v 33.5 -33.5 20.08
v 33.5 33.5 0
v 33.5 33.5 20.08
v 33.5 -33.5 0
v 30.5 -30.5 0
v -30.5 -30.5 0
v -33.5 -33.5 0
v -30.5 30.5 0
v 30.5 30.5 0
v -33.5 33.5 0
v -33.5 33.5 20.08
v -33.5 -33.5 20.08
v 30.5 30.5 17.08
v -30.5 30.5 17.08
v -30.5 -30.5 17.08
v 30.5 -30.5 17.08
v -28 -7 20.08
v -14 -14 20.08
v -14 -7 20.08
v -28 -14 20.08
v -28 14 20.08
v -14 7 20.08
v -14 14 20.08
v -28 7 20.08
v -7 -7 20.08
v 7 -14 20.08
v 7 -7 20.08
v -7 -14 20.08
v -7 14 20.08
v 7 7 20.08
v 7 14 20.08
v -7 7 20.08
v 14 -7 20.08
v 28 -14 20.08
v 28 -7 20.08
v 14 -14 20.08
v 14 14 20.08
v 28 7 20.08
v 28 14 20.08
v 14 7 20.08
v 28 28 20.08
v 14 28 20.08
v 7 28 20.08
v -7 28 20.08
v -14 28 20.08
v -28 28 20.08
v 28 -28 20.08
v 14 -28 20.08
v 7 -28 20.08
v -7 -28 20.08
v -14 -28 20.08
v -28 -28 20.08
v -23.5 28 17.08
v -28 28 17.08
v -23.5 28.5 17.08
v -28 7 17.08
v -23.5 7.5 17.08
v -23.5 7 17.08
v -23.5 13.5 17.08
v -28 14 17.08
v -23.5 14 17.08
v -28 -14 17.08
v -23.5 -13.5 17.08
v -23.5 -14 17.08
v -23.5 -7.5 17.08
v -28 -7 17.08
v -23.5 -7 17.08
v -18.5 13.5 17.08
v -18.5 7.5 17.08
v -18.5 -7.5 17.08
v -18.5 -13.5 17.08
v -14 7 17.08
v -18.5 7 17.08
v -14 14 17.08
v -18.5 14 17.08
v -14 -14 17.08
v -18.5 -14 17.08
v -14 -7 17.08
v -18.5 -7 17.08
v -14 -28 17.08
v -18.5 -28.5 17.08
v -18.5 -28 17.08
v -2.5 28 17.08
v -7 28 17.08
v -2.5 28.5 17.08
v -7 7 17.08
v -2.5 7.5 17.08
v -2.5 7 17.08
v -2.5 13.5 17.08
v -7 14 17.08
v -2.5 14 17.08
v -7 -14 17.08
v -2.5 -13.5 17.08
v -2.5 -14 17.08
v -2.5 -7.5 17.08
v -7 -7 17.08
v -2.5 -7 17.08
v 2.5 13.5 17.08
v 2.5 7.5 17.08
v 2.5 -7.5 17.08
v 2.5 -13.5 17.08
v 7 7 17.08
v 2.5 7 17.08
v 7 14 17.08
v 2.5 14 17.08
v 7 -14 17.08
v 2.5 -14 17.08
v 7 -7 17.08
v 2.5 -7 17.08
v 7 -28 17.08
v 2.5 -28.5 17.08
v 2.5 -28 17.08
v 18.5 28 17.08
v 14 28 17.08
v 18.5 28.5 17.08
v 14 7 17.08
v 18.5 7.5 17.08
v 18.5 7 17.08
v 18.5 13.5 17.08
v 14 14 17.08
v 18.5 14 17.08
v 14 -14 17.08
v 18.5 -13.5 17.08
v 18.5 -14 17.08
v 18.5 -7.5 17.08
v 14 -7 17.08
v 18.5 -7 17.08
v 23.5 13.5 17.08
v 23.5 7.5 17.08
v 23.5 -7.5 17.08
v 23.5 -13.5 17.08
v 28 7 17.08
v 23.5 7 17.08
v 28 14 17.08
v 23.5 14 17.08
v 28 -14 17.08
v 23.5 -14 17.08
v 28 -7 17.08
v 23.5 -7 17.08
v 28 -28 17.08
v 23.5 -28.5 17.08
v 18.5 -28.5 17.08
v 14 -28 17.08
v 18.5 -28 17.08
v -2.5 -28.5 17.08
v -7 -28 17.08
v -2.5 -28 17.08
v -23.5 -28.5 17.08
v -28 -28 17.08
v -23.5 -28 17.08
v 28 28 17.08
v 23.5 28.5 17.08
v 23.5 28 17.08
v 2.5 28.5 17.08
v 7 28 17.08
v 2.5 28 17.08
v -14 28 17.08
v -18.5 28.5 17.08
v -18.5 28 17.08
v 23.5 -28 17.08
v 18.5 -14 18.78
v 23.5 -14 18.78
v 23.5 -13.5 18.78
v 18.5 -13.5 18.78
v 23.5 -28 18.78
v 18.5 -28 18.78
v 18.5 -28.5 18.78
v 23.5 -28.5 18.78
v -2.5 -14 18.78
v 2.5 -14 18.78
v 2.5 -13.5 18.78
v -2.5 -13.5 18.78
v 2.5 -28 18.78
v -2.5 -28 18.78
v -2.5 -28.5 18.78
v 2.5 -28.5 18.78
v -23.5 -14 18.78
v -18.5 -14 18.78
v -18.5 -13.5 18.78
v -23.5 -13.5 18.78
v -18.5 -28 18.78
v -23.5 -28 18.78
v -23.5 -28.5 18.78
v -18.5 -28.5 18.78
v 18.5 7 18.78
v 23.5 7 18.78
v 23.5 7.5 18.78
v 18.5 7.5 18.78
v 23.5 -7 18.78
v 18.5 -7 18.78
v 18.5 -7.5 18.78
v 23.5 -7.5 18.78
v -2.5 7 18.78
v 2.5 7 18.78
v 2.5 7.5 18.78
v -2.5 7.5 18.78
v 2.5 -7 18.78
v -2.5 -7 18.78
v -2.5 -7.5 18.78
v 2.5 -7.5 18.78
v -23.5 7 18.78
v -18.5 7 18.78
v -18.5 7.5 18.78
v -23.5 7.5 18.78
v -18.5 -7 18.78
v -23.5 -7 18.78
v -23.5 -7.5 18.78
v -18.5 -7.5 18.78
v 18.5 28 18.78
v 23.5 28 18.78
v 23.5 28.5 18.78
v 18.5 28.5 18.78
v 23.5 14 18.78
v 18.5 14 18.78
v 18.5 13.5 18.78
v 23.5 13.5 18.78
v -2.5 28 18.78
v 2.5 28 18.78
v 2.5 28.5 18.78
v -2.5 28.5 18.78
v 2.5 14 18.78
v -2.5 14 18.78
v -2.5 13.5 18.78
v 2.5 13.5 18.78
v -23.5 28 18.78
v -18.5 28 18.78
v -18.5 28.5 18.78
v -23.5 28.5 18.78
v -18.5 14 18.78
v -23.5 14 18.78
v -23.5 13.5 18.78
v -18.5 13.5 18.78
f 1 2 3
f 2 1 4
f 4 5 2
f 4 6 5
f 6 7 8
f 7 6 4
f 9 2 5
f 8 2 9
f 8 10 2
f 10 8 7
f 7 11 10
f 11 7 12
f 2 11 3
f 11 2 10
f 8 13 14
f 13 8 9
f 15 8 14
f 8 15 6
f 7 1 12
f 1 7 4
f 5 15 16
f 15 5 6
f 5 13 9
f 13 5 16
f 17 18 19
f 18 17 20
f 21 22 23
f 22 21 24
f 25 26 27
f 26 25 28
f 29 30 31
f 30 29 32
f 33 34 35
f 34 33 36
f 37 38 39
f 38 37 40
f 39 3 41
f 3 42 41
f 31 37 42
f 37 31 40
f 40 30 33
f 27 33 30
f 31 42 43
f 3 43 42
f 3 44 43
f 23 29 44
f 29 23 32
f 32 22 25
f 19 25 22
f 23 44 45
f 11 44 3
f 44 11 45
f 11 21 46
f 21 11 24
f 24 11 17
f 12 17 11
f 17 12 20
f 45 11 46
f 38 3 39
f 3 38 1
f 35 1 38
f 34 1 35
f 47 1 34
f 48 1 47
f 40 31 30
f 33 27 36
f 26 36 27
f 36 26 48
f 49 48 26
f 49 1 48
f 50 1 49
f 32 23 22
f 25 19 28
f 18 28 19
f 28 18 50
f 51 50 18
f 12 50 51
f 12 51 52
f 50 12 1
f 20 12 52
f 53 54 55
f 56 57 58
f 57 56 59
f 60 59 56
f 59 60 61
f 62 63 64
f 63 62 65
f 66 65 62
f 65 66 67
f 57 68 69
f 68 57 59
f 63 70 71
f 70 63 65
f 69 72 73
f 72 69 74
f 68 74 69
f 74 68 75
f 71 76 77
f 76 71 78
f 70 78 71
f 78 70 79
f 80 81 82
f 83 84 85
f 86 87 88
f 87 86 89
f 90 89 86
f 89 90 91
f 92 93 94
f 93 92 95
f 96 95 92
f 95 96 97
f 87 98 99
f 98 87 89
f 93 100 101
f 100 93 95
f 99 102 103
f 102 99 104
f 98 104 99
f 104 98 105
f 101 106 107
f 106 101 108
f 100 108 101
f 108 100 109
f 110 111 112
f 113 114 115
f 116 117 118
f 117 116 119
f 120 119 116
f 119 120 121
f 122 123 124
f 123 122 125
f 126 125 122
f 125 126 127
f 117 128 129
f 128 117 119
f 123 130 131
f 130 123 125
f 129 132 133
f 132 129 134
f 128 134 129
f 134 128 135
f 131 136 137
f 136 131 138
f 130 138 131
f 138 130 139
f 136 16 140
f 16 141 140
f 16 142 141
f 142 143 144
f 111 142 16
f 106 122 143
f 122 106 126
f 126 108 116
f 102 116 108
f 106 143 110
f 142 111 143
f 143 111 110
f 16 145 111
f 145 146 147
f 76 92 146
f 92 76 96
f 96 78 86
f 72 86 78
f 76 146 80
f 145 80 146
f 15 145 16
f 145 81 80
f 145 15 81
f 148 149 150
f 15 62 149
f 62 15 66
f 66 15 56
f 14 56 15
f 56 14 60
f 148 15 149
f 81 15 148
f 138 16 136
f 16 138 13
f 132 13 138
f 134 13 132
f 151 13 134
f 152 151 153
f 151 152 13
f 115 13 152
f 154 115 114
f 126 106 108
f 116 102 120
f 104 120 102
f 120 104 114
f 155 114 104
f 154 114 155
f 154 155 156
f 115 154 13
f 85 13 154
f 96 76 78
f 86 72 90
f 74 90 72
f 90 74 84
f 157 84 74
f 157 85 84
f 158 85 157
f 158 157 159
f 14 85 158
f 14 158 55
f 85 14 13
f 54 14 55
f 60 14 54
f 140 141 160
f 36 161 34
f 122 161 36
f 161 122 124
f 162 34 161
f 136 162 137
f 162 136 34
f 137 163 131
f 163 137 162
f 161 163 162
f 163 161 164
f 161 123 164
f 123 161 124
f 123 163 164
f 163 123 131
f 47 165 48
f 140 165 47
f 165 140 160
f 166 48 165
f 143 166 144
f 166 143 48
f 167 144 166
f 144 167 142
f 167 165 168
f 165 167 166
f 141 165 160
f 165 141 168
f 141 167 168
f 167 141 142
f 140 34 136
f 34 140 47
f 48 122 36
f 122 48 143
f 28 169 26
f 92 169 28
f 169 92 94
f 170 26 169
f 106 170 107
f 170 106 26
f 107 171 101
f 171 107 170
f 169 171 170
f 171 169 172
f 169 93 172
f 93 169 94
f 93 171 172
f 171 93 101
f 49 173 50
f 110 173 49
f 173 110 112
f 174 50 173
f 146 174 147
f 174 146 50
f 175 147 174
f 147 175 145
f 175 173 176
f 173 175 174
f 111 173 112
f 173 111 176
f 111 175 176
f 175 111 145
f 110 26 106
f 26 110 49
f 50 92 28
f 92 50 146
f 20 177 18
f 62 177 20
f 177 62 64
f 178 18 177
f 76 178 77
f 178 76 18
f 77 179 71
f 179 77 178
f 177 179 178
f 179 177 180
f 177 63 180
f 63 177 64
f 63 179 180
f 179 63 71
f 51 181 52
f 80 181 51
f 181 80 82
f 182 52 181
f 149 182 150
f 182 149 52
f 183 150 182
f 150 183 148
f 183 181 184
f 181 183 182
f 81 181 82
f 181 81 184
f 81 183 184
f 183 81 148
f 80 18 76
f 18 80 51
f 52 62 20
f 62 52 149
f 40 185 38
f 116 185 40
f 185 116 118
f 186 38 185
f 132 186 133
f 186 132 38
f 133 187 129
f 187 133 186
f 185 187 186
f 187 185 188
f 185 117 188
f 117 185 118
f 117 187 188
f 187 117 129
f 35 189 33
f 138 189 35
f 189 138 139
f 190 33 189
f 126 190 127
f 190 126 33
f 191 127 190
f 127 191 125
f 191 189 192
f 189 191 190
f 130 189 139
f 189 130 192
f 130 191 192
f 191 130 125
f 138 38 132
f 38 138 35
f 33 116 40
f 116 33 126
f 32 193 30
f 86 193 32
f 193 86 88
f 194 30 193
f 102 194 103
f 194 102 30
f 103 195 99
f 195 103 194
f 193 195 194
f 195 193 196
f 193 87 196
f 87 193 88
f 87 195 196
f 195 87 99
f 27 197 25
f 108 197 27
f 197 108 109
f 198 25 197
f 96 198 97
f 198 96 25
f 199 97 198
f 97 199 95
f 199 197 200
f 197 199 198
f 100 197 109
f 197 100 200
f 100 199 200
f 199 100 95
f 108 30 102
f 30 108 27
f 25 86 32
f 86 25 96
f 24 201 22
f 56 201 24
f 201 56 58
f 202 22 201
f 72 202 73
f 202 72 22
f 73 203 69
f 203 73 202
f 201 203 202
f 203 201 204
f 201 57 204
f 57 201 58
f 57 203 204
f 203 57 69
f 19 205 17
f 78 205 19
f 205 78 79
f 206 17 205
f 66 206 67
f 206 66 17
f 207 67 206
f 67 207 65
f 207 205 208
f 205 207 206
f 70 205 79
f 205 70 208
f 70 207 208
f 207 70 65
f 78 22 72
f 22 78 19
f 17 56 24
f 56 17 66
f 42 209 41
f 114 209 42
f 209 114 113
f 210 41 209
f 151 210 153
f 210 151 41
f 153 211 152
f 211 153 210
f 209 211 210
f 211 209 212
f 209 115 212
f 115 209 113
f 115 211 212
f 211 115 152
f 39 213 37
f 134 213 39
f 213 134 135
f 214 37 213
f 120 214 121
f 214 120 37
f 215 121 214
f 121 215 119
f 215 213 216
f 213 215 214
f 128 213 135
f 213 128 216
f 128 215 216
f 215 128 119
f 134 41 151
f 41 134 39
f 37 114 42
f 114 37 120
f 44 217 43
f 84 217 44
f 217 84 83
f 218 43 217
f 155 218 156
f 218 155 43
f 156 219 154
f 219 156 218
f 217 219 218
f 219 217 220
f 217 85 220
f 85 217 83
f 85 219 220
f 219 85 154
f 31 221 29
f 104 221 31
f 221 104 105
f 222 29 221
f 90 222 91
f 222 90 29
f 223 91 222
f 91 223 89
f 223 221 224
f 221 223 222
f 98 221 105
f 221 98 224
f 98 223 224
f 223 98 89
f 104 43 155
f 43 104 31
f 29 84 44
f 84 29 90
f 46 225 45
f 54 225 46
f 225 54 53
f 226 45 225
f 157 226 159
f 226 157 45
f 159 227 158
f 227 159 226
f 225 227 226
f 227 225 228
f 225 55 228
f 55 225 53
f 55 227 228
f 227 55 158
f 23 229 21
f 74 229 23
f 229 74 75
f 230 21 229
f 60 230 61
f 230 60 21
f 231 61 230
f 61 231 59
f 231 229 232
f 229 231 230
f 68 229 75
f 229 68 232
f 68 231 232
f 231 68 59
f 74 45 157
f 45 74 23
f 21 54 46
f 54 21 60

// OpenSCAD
// Generated by SolidPython 1.0.4 on 2020-12-13 17:19:34


union() {
	translate(v = [0, 0, 10.0400000000]) {
		union() {
			translate(v = [0, 32.0000000000, 0]) {
				cube(center = true, size = [67.0000000000, 3, 20.0800000000]);
			}
			translate(v = [-32.0000000000, 0, 0]) {
				cube(center = true, size = [3, 67.0000000000, 20.0800000000]);
			}
			rotate(a = 180) {
				translate(v = [0, 32.0000000000, 0]) {
					cube(center = true, size = [67.0000000000, 3, 20.0800000000]);
				}
			}
			rotate(a = 180) {
				translate(v = [-32.0000000000, 0, 0]) {
					cube(center = true, size = [3, 67.0000000000, 20.0800000000]);
				}
			}
		}
	}
	translate(v = [0, 0, 17.0800000000]) {
		translate(v = [21.0000000000, 0, 0]) {
			translate(v = [0, -21.0000000000, 0]) {
				translate(v = [-0.0000000000, 0, 0]) {
					translate(v = [0, 0.0000000000, 0]) {
						union() {
							translate(v = [0, 7.7500000000, 0]) {
								translate(v = [0, 0, 1.5000000000]) {
									difference() {
										cube(center = true, size = [17.0000000000, 1.5000000000, 3]);
										translate(v = [0, 0, -1.3000000000]) {
											translate(v = [0, -0.7500000000, 0]) {
												cube(center = true, size = [5, 1.0000000000, 3]);
											}
										}
									}
								}
							}
							translate(v = [-7.7500000000, 0, 0]) {
								translate(v = [0, 0, 1.5000000000]) {
									cube(center = true, size = [1.5000000000, 17.0000000000, 3]);
								}
							}
							mirror(v = [0, 1, 0]) {
								mirror(v = [1, 0, 0]) {
									union() {
										translate(v = [0, 7.7500000000, 0]) {
											translate(v = [0, 0, 1.5000000000]) {
												difference() {
													cube(center = true, size = [17.0000000000, 1.5000000000, 3]);
													translate(v = [0, 0, -1.3000000000]) {
														translate(v = [0, -0.7500000000, 0]) {
															cube(center = true, size = [5, 1.0000000000, 3]);
														}
													}
												}
											}
										}
										translate(v = [-7.7500000000, 0, 0]) {
											translate(v = [0, 0, 1.5000000000]) {
												cube(center = true, size = [1.5000000000, 17.0000000000, 3]);
											}
										}
									}
								}
							}
							translate(v = [0, 0, 1.5000000000]) {
								translate(v = [0, 10.5000000000, 0]) {
									cube(center = true, size = [25.0000000000, 4, 3]);
								}
							}
							rotate(a = 90) {
								translate(v = [0, 0, 1.5000000000]) {
									translate(v = [0, 10.5000000000, 0]) {
										cube(center = true, size = [25.0000000000, 4, 3]);
									}
								}
							}
							rotate(a = 180) {
								translate(v = [0, 0, 1.5000000000]) {
									translate(v = [0, 10.5000000000, 0]) {
										cube(center = true, size = [25.0000000000, 4, 3]);
									}
								}
							}
							rotate(a = 270) {
								translate(v = [0, 0, 1.5000000000]) {
									translate(v = [0, 10.5000000000, 0]) {
										cube(center = true, size = [25.0000000000, 4, 3]);
									}
								}
							}
						}
					}
				}
				translate(v = [-21.0000000000, 0, 0]) {
					translate(v = [0, 0.0000000000, 0]) {
						union() {
							translate(v = [0, 7.7500000000, 0]) {
								translate(v = [0, 0, 1.5000000000]) {
									difference() {
										cube(center = true, size = [17.0000000000, 1.5000000000, 3]);
										translate(v = [0, 0, -1.3000000000]) {
											translate(v = [0, -0.7500000000, 0]) {
												cube(center = true, size = [5, 1.0000000000, 3]);
											}
										}
									}
								}
							}
							translate(v = [-7.7500000000, 0, 0]) {
								translate(v = [0, 0, 1.5000000000]) {
									cube(center = true, size = [1.5000000000, 17.0000000000, 3]);
								}
							}
							mirror(v = [0, 1, 0]) {
								mirror(v = [1, 0, 0]) {
									union() {
										translate(v = [0, 7.7500000000, 0]) {
											translate(v = [0, 0, 1.5000000000]) {
												difference() {
													cube(center = true, size = [17.0000000000, 1.5000000000, 3]);
													translate(v = [0, 0, -1.3000000000]) {
														translate(v = [0, -0.7500000000, 0]) {
															cube(center = true, size = [5, 1.0000000000, 3]);
														}
													}
												}
											}
										}
										translate(v = [-7.7500000000, 0, 0]) {
											translate(v = [0, 0, 1.5000000000]) {
												cube(center = true, size = [1.5000000000, 17.0000000000, 3]);
											}
										}
									}
								}
							}
							translate(v = [0, 0, 1.5000000000]) {
								translate(v = [0, 10.5000000000, 0]) {
									cube(center = true, size = [25.0000000000, 4, 3]);
								}
							}
							rotate(a = 90) {
								translate(v = [0, 0, 1.5000000000]) {
									translate(v = [0, 10.5000000000, 0]) {
										cube(center = true, size = [25.0000000000, 4, 3]);
									}
								}
							}
							rotate(a = 180) {
								translate(v = [0, 0, 1.5000000000]) {
									translate(v = [0, 10.5000000000, 0]) {
										cube(center = true, size = [25.0000000000, 4, 3]);
									}
								}
							}
							rotate(a = 270) {
								translate(v = [0, 0, 1.5000000000]) {
									translate(v = [0, 10.5000000000, 0]) {
										cube(center = true, size = [25.0000000000, 4, 3]);
									}
								}
							}
						}
					}
				}
				translate(v = [-42.0000000000, 0, 0]) {
					translate(v = [0, 0.0000000000, 0]) {
						union() {
							translate(v = [0, 7.7500000000, 0]) {
								translate(v = [0, 0, 1.5000000000]) {
									difference() {
										cube(center = true, size = [17.0000000000, 1.5000000000, 3]);
										translate(v = [0, 0, -1.3000000000]) {
											translate(v = [0, -0.7500000000, 0]) {
												cube(center = true, size = [5, 1.0000000000, 3]);
											}
										}
									}
								}
							}
							translate(v = [-7.7500000000, 0, 0]) {
								translate(v = [0, 0, 1.5000000000]) {
									cube(center = true, size = [1.5000000000, 17.0000000000, 3]);
								}
							}
							mirror(v = [0, 1, 0]) {
								mirror(v = [1, 0, 0]) {
									union() {
										translate(v = [0, 7.7500000000, 0]) {
											translate(v = [0, 0, 1.5000000000]) {
												difference() {
													cube(center = true, size = [17.0000000000, 1.5000000000, 3]);
													translate(v = [0, 0, -1.3000000000]) {
														translate(v = [0, -0.7500000000, 0]) {
															cube(center = true, size = [5, 1.0000000000, 3]);
														}
													}
												}
											}
										}
										translate(v = [-7.7500000000, 0, 0]) {
											translate(v = [0, 0, 1.5000000000]) {
												cube(center = true, size = [1.5000000000, 17.0000000000, 3]);
											}
										}
									}
								}
							}
							translate(v = [0, 0, 1.5000000000]) {
								translate(v = [0, 10.5000000000, 0]) {
									cube(center = true, size = [25.0000000000, 4, 3]);
								}
							}
							rotate(a = 90) {
								translate(v = [0, 0, 1.5000000000]) {
									translate(v = [0, 10.5000000000, 0]) {
										cube(center = true, size = [25.0000000000, 4, 3]);
									}
								}
							}
							rotate(a = 180) {
								translate(v = [0, 0, 1.5000000000]) {
									translate(v = [0, 10.5000000000, 0]) {
										cube(center = true, size = [25.0000000000, 4, 3]);
									}
								}
							}
							rotate(a = 270) {
								translate(v = [0, 0, 1.5000000000]) {
									translate(v = [0, 10.5000000000, 0]) {
										cube(center = true, size = [25.0000000000, 4, 3]);
									}
								}
							}
						}
					}
				}
				translate(v = [-0.0000000000, 0, 0]) {
					translate(v = [0, 21.0000000000, 0]) {
						union() {
							translate(v = [0, 7.7500000000, 0]) {
								translate(v = [0, 0, 1.5000000000]) {
									difference() {
										cube(center = true, size = [17.0000000000, 1.5000000000, 3]);
										translate(v = [0, 0, -1.3000000000]) {
											translate(v = [0, -0.7500000000, 0]) {
												cube(center = true, size = [5, 1.0000000000, 3]);
											}
										}
									}
								}
							}
							translate(v = [-7.7500000000, 0, 0]) {
								translate(v = [0, 0, 1.5000000000]) {
									cube(center = true, size = [1.5000000000, 17.0000000000, 3]);
								}
							}
							mirror(v = [0, 1, 0]) {
								mirror(v = [1, 0, 0]) {
									union() {
										translate(v = [0, 7.7500000000, 0]) {
											translate(v = [0, 0, 1.5000000000]) {
												difference() {
													cube(center = true, size = [17.0000000000, 1.5000000000, 3]);
													translate(v = [0, 0, -1.3000000000]) {
														translate(v = [0, -0.7500000000, 0]) {
															cube(center = true, size = [5, 1.0000000000, 3]);
														}
													}
												}
											}
										}
										translate(v = [-7.7500000000, 0, 0]) {
											translate(v = [0, 0, 1.5000000000]) {
												cube(center = true, size = [1.5000000000, 17.0000000000, 3]);
											}
										}
									}
								}
							}
							translate(v = [0, 0, 1.5000000000]) {
								translate(v = [0, 10.5000000000, 0]) {
									cube(center = true, size = [25.0000000000, 4, 3]);
								}
							}
							rotate(a = 90) {
								translate(v = [0, 0, 1.5000000000]) {
									translate(v = [0, 10.5000000000, 0]) {
										cube(center = true, size = [25.0000000000, 4, 3]);
									}
								}
							}
							rotate(a = 180) {
								translate(v = [0, 0, 1.5000000000]) {
									translate(v = [0, 10.5000000000, 0]) {
										cube(center = true, size = [25.0000000000, 4, 3]);
									}
								}
							}
							rotate(a = 270) {
								translate(v = [0, 0, 1.5000000000]) {
									translate(v = [0, 10.5000000000, 0]) {
										cube(center = true, size = [25.0000000000, 4, 3]);
									}
								}
							}
						}
					}
				}
				translate(v = [-21.0000000000, 0, 0]) {
					translate(v = [0, 21.0000000000, 0]) {
						union() {
							translate(v = [0, 7.7500000000, 0]) {
								translate(v = [0, 0, 1.5000000000]) {
									difference() {
										cube(center = true, size = [17.0000000000, 1.5000000000, 3]);
										translate(v = [0, 0, -1.3000000000]) {
											translate(v = [0, -0.7500000000, 0]) {
												cube(center = true, size = [5, 1.0000000000, 3]);
											}
										}
									}
								}
							}
							translate(v = [-7.7500000000, 0, 0]) {
								translate(v = [0, 0, 1.5000000000]) {
									cube(center = true, size = [1.5000000000, 17.0000000000, 3]);
								}
							}
							mirror(v = [0, 1, 0]) {
								mirror(v = [1, 0, 0]) {
									union() {
										translate(v = [0, 7.7500000000, 0]) {
											translate(v = [0, 0, 1.5000000000]) {
												difference() {
													cube(center = true, size = [17.0000000000, 1.5000000000, 3]);
													translate(v = [0, 0, -1.3000000000]) {
														translate(v = [0, -0.7500000000, 0]) {
															cube(center = true, size = [5, 1.0000000000, 3]);
														}
													}
												}
											}
										}
										translate(v = [-7.7500000000, 0, 0]) {
											translate(v = [0, 0, 1.5000000000]) {
												cube(center = true, size = [1.5000000000, 17.0000000000, 3]);
											}
										}
									}
								}
							}
							translate(v = [0, 0, 1.5000000000]) {
								translate(v = [0, 10.5000000000, 0]) {
									cube(center = true, size = [25.0000000000, 4, 3]);
								}
							}
							rotate(a = 90) {
								translate(v = [0, 0, 1.5000000000]) {
									translate(v = [0, 10.5000000000, 0]) {
										cube(center = true, size = [25.0000000000, 4, 3]);
									}
								}
							}
							rotate(a = 180) {
								translate(v = [0, 0, 1.5000000000]) {
									translate(v = [0, 10.5000000000, 0]) {
										cube(center = true, size = [25.0000000000, 4, 3]);
									}
								}
							}
							rotate(a = 270) {
								translate(v = [0, 0, 1.5000000000]) {
									translate(v = [0, 10.5000000000, 0]) {
										cube(center = true, size = [25.0000000000, 4, 3]);
									}
								}
							}
						}
					}
				}
				translate(v = [-42.0000000000, 0, 0]) {
					translate(v = [0, 21.0000000000, 0]) {
						union() {
							translate(v = [0, 7.7500000000, 0]) {
								translate(v = [0, 0, 1.5000000000]) {
									difference() {
										cube(center = true, size = [17.0000000000, 1.5000000000, 3]);
										translate(v = [0, 0, -1.3000000000]) {
											translate(v = [0, -0.7500000000, 0]) {
												cube(center = true, size = [5, 1.0000000000, 3]);
											}
										}
									}
								}
							}
							translate(v = [-7.7500000000, 0, 0]) {
								translate(v = [0, 0, 1.5000000000]) {
									cube(center = true, size = [1.5000000000, 17.0000000000, 3]);
								}
							}
							mirror(v = [0, 1, 0]) {
								mirror(v = [1, 0, 0]) {
									union() {
										translate(v = [0, 7.7500000000, 0]) {
											translate(v = [0, 0, 1.5000000000]) {
												difference() {
													cube(center = true, size = [17.0000000000, 1.5000000000, 3]);
													translate(v = [0, 0, -1.3000000000]) {
														translate(v = [0, -0.7500000000, 0]) {
															cube(center = true, size = [5, 1.0000000000, 3]);
														}
													}
												}
											}
										}
										translate(v = [-7.7500000000, 0, 0]) {
											translate(v = [0, 0, 1.5000000000]) {
												cube(center = true, size = [1.5000000000, 17.0000000000, 3]);
											}
										}
									}
								}
							}
							translate(v = [0, 0, 1.5000000000]) {
								translate(v = [0, 10.5000000000, 0]) {
									cube(center = true, size = [25.0000000000, 4, 3]);
								}
							}
							rotate(a = 90) {
								translate(v = [0, 0, 1.5000000000]) {
									translate(v = [0, 10.5000000000, 0]) {
										cube(center = true, size = [25.0000000000, 4, 3]);
									}
								}
							}
							rotate(a = 180) {
								translate(v = [0, 0, 1.5000000000]) {
									translate(v = [0, 10.5000000000, 0]) {
										cube(center = true, size = [25.0000000000, 4, 3]);
									}
								}
							}
							rotate(a = 270) {
								translate(v = [0, 0, 1.5000000000]) {
									translate(v = [0, 10.5000000000, 0]) {
										cube(center = true, size = [25.0000000000, 4, 3]);
									}
								}
							}
						}
					}
				}
				translate(v = [-0.0000000000, 0, 0]) {
					translate(v = [0, 42.0000000000, 0]) {
						union() {
							translate(v = [0, 7.7500000000, 0]) {
								translate(v = [0, 0, 1.5000000000]) {
									difference() {
										cube(center = true, size = [17.0000000000, 1.5000000000, 3]);
										translate(v = [0, 0, -1.3000000000]) {
											translate(v = [0, -0.7500000000, 0]) {
												cube(center = true, size = [5, 1.0000000000, 3]);
											}
										}
									}
								}
							}
							translate(v = [-7.7500000000, 0, 0]) {
								translate(v = [0, 0, 1.5000000000]) {
									cube(center = true, size = [1.5000000000, 17.0000000000, 3]);
								}
							}
							mirror(v = [0, 1, 0]) {
								mirror(v = [1, 0, 0]) {
									union() {
										translate(v = [0, 7.7500000000, 0]) {
											translate(v = [0, 0, 1.5000000000]) {
												difference() {
													cube(center = true, size = [17.0000000000, 1.5000000000, 3]);
													translate(v = [0, 0, -1.3000000000]) {
														translate(v = [0, -0.7500000000, 0]) {
															cube(center = true, size = [5, 1.0000000000, 3]);
														}
													}
												}
											}
										}
										translate(v = [-7.7500000000, 0, 0]) {
											translate(v = [0, 0, 1.5000000000]) {
												cube(center = true, size = [1.5000000000, 17.0000000000, 3]);
											}
										}
									}
								}
							}
							translate(v = [0, 0, 1.5000000000]) {
								translate(v = [0, 10.5000000000, 0]) {
									cube(center = true, size = [25.0000000000, 4, 3]);
								}
							}
							rotate(a = 90) {
								translate(v = [0, 0, 1.5000000000]) {
									translate(v = [0, 10.5000000000, 0]) {
										cube(center = true, size = [25.0000000000, 4, 3]);
									}
								}
							}
							rotate(a = 180) {
								translate(v = [0, 0, 1.5000000000]) {
									translate(v = [0, 10.5000000000, 0]) {
										cube(center = true, size = [25.0000000000, 4, 3]);
									}
								}
							}
							rotate(a = 270) {
								translate(v = [0, 0, 1.5000000000]) {
									translate(v = [0, 10.5000000000, 0]) {
										cube(center = true, size = [25.0000000000, 4, 3]);
									}
								}
							}
						}
					}
				}
				translate(v = [-21.0000000000, 0, 0]) {
					translate(v = [0, 42.0000000000, 0]) {
						union() {
							translate(v = [0, 7.7500000000, 0]) {
								translate(v = [0, 0, 1.5000000000]) {
									difference() {
										cube(center = true, size = [17.0000000000, 1.5000000000, 3]);
										translate(v = [0, 0, -1.3000000000]) {
											translate(v = [0, -0.7500000000, 0]) {
												cube(center = true, size = [5, 1.0000000000, 3]);
											}
										}
									}
								}
							}
							translate(v = [-7.7500000000, 0, 0]) {
								translate(v = [0, 0, 1.5000000000]) {
									cube(center = true, size = [1.5000000000, 17.0000000000, 3]);
								}
							}
							mirror(v = [0, 1, 0]) {
								mirror(v = [1, 0, 0]) {
									union() {
										translate(v = [0, 7.7500000000, 0]) {
											translate(v = [0, 0, 1.5000000000]) {
												difference() {
													cube(center = true, size = [17.0000000000, 1.5000000000, 3]);
													translate(v = [0, 0, -1.3000000000]) {
														translate(v = [0, -0.7500000000, 0]) {
															cube(center = true, size = [5, 1.0000000000, 3]);
														}
													}
												}
											}
										}
										translate(v = [-7.7500000000, 0, 0]) {
											translate(v = [0, 0, 1.5000000000]) {
												cube(center = true, size = [1.5000000000, 17.0000000000, 3]);
											}
										}
									}
								}
							}
							translate(v = [0, 0, 1.5000000000]) {
								translate(v = [0, 10.5000000000, 0]) {
									cube(center = true, size = [25.0000000000, 4, 3]);
								}
							}
							rotate(a = 90) {
								translate(v = [0, 0, 1.5000000000]) {
									translate(v = [0, 10.5000000000, 0]) {
										cube(center = true, size = [25.0000000000, 4, 3]);
									}
								}
							}
							rotate(a = 180) {
								translate(v = [0, 0, 1.5000000000]) {
									translate(v = [0, 10.5000000000, 0]) {
										cube(center = true, size = [25.0000000000, 4, 3]);
									}
								}
							}
							rotate(a = 270) {
								translate(v = [0, 0, 1.5000000000]) {
									translate(v = [0, 10.5000000000, 0]) {
										cube(center = true, size = [25.0000000000, 4, 3]);
									}
								}
							}
						}
					}
				}
				translate(v = [-42.0000000000, 0, 0]) {
					translate(v = [0, 42.0000000000, 0]) {
						union() {
							translate(v = [0, 7.7500000000, 0]) {
								translate(v = [0, 0, 1.5000000000]) {
									difference() {
										cube(center = true, size = [17.0000000000, 1.5000000000, 3]);
										translate(v = [0, 0, -1.3000000000]) {
											translate(v = [0, -0.7500000000, 0]) {
												cube(center = true, size = [5, 1.0000000000, 3]);
											}
										}
									}
								}
							}
							translate(v = [-7.7500000000, 0, 0]) {
								translate(v = [0, 0, 1.5000000000]) {
									cube(center = true, size = [1.5000000000, 17.0000000000, 3]);
								}
							}
							mirror(v = [0, 1, 0]) {
								mirror(v = [1, 0, 0]) {
									union() {
										translate(v = [0, 7.7500000000, 0]) {
											translate(v = [0, 0, 1.5000000000]) {
												difference() {
													cube(center = true, size = [17.0000000000, 1.5000000000, 3]);
													translate(v = [0, 0, -1.3000000000]) {
														translate(v = [0, -0.7500000000, 0]) {
															cube(center = true, size = [5, 1.0000000000, 3]);
														}
													}
												}
											}
										}
										translate(v = [-7.7500000000, 0, 0]) {
											translate(v = [0, 0, 1.5000000000]) {
												cube(center = true, size = [1.5000000000, 17.0000000000, 3]);
											}
										}
									}
								}
							}
							translate(v = [0, 0, 1.5000000000]) {
								translate(v = [0, 10.5000000000, 0]) {
									cube(center = true, size = [25.0000000000, 4, 3]);
								}
							}
							rotate(a = 90) {
								translate(v = [0, 0, 1.5000000000]) {
									translate(v = [0, 10.5000000000, 0]) {
										cube(center = true, size = [25.0000000000, 4, 3]);
									}
								}
							}
							rotate(a = 180) {
								translate(v = [0, 0, 1.5000000000]) {
									translate(v = [0, 10.5000000000, 0]) {
										cube(center = true, size = [25.0000000000, 4, 3]);
									}
								}
							}
							rotate(a = 270) {
								translate(v = [0, 0, 1.5000000000]) {
									translate(v = [0, 10.5000000000, 0]) {
										cube(center = true, size = [25.0000000000, 4, 3]);
									}
								}
							}
						}
					}
				}
			}
		}
	}
}
/***********************************************
*********      SolidPython code:      **********
************************************************
 
#!/usr/bin/env python
import argparse
from os.path import abspath, dirname, join

from solid import *

from key_grid_tester import key_grid_tester


if __name__ == "__main__":
    parser = argparse.ArgumentParser(description="Process some integers.")
    parser.add_argument(
        "length",
        metavar="LENGTH",
        type=int,
        help="the length of the tester, in number of keys",
    )
    parser.add_argument(
        "width",
        metavar="WIDTH",
        type=int,
        help="the width of the tester, in number of keys",
    )
    parser.add_argument(
        "-o",
        "--output",
        metavar="FILE",
        type=str,
        default=None,
        help="the name of the file to write to",
    )

    args = parser.parse_args()

    filepath=join(
        dirname(dirname(abspath(__file__))),
        'files',
        args.output or f"key_grid_tester_{args.length}x{args.width}.scad"
    )

    print(filepath)

    scad_render_to_file(
        key_grid_tester(args.length, args.width),
        filepath=filepath,
        include_orig_code=True
    )
 
 
************************************************/
